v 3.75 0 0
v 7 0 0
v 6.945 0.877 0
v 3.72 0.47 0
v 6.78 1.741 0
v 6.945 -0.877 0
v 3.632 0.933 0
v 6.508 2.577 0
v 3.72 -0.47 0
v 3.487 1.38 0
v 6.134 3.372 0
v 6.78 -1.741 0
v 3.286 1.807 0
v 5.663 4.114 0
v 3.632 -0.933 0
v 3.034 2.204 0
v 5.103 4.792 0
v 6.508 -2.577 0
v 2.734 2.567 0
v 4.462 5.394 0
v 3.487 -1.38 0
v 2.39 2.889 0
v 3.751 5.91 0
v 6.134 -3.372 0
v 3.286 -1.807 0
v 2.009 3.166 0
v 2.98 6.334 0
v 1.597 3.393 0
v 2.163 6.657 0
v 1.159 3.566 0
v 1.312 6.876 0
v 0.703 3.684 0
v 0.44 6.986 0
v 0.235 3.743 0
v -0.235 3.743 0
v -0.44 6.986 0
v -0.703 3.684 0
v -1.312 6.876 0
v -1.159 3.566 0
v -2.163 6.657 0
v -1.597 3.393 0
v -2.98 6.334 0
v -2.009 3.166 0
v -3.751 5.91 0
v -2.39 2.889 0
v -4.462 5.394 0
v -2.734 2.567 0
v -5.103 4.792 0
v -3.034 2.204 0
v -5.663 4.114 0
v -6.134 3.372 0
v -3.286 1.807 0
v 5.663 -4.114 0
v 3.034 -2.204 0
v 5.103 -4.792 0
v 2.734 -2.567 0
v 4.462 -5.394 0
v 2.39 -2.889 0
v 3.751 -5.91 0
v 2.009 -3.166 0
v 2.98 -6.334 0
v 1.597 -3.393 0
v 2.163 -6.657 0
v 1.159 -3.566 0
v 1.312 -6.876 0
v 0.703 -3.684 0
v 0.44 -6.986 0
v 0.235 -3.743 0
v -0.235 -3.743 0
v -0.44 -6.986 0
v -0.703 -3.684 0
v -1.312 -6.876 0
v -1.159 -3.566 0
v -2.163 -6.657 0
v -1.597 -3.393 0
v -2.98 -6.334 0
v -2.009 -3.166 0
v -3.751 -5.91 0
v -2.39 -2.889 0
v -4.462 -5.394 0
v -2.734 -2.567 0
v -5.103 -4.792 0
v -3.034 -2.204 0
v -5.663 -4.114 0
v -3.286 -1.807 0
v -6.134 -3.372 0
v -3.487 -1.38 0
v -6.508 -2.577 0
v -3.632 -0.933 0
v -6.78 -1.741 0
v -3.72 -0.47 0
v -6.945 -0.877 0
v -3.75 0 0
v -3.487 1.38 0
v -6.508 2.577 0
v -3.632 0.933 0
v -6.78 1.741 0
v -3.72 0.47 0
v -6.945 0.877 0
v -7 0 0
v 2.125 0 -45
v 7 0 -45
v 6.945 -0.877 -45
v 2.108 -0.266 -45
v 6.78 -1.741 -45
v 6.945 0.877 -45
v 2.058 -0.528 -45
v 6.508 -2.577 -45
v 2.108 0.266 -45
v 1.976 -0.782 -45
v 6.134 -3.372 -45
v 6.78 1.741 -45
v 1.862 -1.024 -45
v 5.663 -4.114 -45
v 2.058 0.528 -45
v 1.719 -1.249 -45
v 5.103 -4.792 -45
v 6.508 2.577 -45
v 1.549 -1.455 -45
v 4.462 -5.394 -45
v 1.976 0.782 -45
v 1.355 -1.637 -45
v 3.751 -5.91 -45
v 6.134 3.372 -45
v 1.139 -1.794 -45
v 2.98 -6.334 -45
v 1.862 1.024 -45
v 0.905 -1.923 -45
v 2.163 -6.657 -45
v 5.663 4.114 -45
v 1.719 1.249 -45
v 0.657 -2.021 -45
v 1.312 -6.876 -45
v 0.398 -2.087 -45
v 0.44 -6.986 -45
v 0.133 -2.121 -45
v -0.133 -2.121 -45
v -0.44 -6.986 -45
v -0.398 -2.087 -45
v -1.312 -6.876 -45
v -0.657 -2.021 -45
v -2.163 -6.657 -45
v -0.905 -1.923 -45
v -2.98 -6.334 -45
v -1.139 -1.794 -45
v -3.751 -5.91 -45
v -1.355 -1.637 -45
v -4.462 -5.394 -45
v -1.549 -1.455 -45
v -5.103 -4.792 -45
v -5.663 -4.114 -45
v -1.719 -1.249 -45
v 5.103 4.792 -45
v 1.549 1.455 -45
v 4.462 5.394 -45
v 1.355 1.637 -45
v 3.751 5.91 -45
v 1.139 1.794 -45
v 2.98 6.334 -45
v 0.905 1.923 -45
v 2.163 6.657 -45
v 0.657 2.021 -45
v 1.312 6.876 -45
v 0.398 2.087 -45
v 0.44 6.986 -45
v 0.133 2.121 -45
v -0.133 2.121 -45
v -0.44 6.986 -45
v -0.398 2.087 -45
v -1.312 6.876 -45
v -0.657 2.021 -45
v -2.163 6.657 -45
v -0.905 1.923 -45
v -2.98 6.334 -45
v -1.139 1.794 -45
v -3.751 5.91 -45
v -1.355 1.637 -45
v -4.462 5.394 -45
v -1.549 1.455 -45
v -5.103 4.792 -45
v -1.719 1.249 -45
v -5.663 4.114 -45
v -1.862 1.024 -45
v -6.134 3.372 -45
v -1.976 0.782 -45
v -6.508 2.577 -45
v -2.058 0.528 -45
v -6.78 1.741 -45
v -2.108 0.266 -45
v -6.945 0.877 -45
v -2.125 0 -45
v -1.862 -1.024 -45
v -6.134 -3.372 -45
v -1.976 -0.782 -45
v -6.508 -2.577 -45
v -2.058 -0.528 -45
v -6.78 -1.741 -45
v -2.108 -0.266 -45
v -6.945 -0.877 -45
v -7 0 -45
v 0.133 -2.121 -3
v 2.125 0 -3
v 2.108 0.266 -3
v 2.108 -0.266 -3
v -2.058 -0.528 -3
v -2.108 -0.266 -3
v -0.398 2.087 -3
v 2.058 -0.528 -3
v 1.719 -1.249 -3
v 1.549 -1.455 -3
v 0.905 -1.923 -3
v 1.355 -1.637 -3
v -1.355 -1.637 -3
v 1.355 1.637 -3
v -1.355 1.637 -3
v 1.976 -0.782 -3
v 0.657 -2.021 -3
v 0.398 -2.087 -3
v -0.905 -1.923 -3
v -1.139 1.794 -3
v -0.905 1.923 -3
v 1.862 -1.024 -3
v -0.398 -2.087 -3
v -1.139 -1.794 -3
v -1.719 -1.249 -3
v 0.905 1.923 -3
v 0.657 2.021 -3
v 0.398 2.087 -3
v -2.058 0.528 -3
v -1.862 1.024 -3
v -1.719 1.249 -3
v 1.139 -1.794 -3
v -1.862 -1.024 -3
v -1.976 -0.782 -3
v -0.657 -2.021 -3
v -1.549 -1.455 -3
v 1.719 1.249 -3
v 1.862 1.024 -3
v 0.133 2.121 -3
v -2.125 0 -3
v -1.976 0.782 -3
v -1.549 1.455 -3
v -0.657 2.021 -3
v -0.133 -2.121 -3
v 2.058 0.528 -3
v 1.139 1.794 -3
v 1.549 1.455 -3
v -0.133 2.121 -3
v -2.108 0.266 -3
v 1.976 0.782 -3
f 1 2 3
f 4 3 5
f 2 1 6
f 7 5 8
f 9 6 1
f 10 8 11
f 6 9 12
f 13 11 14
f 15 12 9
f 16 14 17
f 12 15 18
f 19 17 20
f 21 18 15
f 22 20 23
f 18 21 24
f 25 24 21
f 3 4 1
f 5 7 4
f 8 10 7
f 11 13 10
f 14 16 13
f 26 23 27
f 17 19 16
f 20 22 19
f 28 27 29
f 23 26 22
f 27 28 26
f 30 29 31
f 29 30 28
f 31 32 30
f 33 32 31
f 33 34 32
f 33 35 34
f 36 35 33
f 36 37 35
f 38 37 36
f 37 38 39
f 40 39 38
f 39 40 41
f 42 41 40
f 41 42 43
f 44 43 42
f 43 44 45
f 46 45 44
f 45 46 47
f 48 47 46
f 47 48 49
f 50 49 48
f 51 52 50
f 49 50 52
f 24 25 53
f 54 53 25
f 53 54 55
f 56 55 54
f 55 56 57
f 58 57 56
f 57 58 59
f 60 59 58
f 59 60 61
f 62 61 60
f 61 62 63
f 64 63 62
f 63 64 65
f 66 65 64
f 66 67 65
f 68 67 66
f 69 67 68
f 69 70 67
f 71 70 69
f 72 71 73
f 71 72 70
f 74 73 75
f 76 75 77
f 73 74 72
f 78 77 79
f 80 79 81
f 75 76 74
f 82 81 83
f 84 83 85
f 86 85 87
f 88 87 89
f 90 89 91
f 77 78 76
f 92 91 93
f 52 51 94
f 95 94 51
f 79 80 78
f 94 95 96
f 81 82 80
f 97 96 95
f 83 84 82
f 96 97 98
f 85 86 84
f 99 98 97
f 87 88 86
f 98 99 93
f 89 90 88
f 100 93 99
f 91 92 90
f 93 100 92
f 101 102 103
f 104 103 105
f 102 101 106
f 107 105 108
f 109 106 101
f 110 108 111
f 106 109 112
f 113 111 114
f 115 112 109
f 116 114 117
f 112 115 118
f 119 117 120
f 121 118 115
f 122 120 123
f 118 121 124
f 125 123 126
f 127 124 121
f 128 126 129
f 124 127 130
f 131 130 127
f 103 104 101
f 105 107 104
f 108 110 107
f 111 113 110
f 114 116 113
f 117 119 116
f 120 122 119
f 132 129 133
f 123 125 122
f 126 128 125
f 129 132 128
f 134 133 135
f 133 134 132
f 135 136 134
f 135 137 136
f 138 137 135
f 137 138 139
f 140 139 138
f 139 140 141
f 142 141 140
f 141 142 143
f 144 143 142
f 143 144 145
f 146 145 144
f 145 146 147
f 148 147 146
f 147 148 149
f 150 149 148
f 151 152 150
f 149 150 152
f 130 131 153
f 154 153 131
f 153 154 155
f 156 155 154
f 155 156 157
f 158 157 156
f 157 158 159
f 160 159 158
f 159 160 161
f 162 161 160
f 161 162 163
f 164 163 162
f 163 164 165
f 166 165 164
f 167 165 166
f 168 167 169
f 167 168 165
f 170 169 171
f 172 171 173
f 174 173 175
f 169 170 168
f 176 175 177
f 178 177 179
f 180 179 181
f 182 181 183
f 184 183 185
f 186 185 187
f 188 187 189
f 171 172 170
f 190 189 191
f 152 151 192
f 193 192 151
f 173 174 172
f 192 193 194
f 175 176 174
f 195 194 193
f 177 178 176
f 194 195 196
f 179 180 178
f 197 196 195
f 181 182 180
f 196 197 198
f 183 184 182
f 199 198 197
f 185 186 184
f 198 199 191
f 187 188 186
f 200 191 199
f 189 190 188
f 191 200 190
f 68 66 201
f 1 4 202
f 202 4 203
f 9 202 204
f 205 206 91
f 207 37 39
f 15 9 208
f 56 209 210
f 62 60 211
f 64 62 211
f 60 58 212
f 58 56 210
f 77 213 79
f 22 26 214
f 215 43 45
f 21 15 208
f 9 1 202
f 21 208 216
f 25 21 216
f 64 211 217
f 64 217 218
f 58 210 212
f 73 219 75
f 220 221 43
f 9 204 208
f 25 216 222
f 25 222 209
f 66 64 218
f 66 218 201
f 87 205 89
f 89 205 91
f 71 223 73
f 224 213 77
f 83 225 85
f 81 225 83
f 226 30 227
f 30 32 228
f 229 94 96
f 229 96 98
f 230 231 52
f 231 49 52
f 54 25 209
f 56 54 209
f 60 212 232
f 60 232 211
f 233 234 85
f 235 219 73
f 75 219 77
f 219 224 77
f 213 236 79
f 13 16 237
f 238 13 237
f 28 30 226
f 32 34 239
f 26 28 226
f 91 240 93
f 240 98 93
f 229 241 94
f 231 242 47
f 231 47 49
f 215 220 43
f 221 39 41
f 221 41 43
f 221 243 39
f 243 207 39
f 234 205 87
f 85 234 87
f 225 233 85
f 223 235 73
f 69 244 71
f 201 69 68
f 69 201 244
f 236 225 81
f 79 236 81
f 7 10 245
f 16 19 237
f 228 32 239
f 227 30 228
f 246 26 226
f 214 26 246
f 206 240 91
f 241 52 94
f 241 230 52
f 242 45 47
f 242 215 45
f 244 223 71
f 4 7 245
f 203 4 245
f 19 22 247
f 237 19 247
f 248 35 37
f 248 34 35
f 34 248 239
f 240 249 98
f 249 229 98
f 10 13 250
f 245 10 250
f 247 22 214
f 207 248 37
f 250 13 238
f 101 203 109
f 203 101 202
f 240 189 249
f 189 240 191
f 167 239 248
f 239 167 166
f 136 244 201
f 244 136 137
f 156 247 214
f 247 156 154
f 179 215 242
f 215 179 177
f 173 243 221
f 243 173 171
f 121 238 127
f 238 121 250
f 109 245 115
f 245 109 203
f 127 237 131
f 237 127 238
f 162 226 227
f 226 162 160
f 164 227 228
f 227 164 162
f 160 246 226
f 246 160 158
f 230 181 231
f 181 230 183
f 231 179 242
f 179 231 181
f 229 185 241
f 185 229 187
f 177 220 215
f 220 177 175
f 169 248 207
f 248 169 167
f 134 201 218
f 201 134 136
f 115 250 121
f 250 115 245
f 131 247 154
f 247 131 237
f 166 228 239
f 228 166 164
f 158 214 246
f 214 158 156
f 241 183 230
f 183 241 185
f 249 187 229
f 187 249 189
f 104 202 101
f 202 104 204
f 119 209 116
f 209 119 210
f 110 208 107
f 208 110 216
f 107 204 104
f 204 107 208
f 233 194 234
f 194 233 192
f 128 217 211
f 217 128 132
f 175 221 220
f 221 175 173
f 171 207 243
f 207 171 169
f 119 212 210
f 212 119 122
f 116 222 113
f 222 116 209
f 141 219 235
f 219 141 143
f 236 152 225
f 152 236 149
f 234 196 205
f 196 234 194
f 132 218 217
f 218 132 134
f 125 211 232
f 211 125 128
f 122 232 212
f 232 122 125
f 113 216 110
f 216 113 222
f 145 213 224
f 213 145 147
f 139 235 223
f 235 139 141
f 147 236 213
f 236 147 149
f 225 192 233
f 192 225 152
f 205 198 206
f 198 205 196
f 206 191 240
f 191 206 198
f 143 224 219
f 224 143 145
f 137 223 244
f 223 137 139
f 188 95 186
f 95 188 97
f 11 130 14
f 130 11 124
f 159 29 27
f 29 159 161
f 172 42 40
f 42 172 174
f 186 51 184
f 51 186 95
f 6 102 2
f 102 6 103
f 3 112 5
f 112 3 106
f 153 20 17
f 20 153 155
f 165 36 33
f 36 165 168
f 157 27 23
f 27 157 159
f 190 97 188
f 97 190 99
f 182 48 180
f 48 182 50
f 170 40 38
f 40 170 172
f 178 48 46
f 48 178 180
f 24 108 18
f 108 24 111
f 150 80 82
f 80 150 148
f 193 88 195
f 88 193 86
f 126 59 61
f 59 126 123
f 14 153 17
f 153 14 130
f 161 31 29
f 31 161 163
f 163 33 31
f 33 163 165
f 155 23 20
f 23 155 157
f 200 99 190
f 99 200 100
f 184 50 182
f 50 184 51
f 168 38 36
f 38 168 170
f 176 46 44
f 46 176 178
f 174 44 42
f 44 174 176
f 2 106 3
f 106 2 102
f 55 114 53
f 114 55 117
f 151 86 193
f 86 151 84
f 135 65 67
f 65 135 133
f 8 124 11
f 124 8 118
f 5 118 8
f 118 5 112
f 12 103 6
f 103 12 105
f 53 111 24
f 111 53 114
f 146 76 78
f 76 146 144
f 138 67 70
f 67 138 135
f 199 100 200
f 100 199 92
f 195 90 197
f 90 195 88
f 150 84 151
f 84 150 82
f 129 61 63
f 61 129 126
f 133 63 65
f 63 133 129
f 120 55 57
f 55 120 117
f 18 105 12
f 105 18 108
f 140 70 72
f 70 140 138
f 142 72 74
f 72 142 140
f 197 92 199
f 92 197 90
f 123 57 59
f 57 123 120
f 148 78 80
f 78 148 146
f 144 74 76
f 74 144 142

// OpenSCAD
$fn = 50;


difference() {
	union() {
		translate(v = [0, 0, -45.0000000000]) {
			cylinder(h = 45, r = 7.0000000000);
		}
	}
	union() {
		translate(v = [0, 0, 0]) {
			rotate(a = [0, 0, 0]) {
				difference() {
					union() {
						#translate(v = [0, 0, -45.0000000000]) {
							cylinder(h = 45, r = 2.0000000000);
						}
						#translate(v = [0, 0, -3]) {
							cylinder(h = 3, r1 = 2.1250000000, r2 = 3.7500000000);
						}
						#translate(v = [0, 0, -45.0000000000]) {
							cylinder(h = 45, r = 2.1250000000);
						}
						#translate(v = [0, 0, -45.0000000000]) {
							cylinder(h = 45, r = 2.0000000000);
						}
					}
					union();
				}
			}
		}
	}
}
